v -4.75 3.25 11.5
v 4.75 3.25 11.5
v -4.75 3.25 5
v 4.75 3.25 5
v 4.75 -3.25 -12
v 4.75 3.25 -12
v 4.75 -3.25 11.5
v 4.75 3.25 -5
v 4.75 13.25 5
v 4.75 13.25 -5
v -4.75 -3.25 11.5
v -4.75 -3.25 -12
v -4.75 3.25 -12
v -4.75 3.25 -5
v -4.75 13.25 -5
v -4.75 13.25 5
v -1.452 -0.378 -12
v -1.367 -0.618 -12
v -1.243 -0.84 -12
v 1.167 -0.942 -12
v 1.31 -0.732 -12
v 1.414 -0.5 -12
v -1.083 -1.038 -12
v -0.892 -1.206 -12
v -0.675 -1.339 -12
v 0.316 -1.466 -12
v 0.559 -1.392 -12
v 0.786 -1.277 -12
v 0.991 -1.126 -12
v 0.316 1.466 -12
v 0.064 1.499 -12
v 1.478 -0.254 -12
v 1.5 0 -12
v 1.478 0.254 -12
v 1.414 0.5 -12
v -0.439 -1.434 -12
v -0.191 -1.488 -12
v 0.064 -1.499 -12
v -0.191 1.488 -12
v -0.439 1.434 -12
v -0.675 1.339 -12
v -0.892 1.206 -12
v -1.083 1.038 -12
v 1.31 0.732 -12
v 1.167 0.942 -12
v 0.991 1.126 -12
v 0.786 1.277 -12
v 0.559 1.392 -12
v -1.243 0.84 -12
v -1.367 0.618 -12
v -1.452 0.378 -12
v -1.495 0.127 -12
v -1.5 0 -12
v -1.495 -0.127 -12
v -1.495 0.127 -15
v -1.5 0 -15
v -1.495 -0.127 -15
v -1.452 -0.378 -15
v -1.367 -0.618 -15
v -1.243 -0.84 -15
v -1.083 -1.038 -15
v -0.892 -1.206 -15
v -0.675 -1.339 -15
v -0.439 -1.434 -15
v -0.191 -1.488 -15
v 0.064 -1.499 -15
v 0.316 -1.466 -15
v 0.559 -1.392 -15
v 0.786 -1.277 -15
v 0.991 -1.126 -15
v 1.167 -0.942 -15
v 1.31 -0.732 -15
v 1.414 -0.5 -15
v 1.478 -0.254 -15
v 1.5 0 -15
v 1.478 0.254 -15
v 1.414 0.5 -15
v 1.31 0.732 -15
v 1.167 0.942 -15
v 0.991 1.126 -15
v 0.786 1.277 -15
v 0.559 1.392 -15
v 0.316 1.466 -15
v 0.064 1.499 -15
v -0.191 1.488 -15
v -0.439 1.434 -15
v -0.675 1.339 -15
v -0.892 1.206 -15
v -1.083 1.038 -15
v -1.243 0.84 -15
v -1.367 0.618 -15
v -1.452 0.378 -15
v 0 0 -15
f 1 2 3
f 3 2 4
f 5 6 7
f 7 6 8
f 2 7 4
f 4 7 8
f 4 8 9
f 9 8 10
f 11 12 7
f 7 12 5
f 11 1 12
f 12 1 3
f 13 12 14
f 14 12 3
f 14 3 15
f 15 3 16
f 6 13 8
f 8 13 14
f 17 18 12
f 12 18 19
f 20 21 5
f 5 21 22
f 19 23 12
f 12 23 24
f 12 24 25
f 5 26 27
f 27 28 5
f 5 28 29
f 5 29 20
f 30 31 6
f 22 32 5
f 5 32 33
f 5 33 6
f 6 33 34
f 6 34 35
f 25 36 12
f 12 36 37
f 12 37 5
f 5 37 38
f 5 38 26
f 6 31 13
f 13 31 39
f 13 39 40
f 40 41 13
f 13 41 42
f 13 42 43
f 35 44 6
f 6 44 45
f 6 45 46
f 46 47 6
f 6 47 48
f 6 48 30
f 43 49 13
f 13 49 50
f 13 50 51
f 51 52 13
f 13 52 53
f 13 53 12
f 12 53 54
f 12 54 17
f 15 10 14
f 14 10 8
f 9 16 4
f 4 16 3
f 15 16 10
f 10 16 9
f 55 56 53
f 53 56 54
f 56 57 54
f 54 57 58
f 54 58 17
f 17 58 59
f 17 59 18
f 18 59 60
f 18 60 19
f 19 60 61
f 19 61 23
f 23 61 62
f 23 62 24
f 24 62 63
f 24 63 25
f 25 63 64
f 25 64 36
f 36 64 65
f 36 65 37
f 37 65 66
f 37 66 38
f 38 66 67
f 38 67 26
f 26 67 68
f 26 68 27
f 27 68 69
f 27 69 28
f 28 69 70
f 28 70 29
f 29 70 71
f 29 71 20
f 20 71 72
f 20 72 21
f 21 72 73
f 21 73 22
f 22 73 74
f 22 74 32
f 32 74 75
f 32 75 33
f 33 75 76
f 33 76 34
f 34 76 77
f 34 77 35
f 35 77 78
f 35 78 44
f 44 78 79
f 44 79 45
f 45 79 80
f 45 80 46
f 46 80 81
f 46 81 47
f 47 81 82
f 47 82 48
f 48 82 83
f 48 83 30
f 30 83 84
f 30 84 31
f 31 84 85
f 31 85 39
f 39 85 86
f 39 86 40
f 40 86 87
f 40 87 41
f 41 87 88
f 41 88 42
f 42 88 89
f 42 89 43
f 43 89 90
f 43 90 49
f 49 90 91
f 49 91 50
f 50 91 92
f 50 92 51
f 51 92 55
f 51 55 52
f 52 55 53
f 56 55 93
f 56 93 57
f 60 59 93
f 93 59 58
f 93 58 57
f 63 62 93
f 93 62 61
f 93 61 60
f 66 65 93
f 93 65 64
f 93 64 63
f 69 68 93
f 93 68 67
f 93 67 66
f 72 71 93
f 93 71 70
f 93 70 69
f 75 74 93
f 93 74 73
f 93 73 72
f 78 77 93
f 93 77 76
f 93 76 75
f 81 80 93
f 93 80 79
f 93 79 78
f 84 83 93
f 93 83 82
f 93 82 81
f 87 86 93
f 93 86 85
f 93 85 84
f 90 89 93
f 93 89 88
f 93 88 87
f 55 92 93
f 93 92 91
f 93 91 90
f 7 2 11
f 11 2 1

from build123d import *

# Parameters (mm, degrees)
BOSS_EXTRUDE1_DEPTH      = 11
BOSS_EXTRUDE1_DEPTH_BACK = 12
SKETCH1_W                = 9.5
SKETCH1_H                = 6.5
SKETCH2_W                = 9.5
SKETCH2_H                = 10
BOSS_EXTRUDE2_DEPTH      = 10
SKETCH3_R                = 1.5
BOSS_EXTRUDE3_DEPTH      = 3
SKETCH4_W                = 9.5
SKETCH4_H                = 6.5
BOSS_EXTRUDE4_DEPTH      = 0.5


with BuildPart() as part:
    # Sketch1 → Boss-Extrude1 (new, two sides: drawn at the far end of the back side and taken through both)
    with BuildSketch(Plane.XY.offset(-BOSS_EXTRUDE1_DEPTH_BACK)):
        Rectangle(SKETCH1_W, SKETCH1_H)
    extrude(amount=BOSS_EXTRUDE1_DEPTH + BOSS_EXTRUDE1_DEPTH_BACK)

    # Sketch2 → Boss-Extrude2 (add)
    with BuildSketch(Plane(origin=(0, 3.25, 0), x_dir=(1, 0, 0), z_dir=(0, 1, 0))):
        Rectangle(SKETCH2_W, SKETCH2_H)
    extrude(amount=BOSS_EXTRUDE2_DEPTH)

    # Sketch3 → Boss-Extrude3 (add)
    with BuildSketch(Plane(origin=(0, 0, -12), x_dir=(-1, 0, 0), z_dir=(0, 0, -1))):
        Circle(SKETCH3_R)
    extrude(amount=BOSS_EXTRUDE3_DEPTH)

    # Sketch4 → Boss-Extrude4 (add)
    with BuildSketch(Plane.XY.offset(11)):
        Rectangle(SKETCH4_W, SKETCH4_H)
    extrude(amount=BOSS_EXTRUDE4_DEPTH)


solid = part.part
